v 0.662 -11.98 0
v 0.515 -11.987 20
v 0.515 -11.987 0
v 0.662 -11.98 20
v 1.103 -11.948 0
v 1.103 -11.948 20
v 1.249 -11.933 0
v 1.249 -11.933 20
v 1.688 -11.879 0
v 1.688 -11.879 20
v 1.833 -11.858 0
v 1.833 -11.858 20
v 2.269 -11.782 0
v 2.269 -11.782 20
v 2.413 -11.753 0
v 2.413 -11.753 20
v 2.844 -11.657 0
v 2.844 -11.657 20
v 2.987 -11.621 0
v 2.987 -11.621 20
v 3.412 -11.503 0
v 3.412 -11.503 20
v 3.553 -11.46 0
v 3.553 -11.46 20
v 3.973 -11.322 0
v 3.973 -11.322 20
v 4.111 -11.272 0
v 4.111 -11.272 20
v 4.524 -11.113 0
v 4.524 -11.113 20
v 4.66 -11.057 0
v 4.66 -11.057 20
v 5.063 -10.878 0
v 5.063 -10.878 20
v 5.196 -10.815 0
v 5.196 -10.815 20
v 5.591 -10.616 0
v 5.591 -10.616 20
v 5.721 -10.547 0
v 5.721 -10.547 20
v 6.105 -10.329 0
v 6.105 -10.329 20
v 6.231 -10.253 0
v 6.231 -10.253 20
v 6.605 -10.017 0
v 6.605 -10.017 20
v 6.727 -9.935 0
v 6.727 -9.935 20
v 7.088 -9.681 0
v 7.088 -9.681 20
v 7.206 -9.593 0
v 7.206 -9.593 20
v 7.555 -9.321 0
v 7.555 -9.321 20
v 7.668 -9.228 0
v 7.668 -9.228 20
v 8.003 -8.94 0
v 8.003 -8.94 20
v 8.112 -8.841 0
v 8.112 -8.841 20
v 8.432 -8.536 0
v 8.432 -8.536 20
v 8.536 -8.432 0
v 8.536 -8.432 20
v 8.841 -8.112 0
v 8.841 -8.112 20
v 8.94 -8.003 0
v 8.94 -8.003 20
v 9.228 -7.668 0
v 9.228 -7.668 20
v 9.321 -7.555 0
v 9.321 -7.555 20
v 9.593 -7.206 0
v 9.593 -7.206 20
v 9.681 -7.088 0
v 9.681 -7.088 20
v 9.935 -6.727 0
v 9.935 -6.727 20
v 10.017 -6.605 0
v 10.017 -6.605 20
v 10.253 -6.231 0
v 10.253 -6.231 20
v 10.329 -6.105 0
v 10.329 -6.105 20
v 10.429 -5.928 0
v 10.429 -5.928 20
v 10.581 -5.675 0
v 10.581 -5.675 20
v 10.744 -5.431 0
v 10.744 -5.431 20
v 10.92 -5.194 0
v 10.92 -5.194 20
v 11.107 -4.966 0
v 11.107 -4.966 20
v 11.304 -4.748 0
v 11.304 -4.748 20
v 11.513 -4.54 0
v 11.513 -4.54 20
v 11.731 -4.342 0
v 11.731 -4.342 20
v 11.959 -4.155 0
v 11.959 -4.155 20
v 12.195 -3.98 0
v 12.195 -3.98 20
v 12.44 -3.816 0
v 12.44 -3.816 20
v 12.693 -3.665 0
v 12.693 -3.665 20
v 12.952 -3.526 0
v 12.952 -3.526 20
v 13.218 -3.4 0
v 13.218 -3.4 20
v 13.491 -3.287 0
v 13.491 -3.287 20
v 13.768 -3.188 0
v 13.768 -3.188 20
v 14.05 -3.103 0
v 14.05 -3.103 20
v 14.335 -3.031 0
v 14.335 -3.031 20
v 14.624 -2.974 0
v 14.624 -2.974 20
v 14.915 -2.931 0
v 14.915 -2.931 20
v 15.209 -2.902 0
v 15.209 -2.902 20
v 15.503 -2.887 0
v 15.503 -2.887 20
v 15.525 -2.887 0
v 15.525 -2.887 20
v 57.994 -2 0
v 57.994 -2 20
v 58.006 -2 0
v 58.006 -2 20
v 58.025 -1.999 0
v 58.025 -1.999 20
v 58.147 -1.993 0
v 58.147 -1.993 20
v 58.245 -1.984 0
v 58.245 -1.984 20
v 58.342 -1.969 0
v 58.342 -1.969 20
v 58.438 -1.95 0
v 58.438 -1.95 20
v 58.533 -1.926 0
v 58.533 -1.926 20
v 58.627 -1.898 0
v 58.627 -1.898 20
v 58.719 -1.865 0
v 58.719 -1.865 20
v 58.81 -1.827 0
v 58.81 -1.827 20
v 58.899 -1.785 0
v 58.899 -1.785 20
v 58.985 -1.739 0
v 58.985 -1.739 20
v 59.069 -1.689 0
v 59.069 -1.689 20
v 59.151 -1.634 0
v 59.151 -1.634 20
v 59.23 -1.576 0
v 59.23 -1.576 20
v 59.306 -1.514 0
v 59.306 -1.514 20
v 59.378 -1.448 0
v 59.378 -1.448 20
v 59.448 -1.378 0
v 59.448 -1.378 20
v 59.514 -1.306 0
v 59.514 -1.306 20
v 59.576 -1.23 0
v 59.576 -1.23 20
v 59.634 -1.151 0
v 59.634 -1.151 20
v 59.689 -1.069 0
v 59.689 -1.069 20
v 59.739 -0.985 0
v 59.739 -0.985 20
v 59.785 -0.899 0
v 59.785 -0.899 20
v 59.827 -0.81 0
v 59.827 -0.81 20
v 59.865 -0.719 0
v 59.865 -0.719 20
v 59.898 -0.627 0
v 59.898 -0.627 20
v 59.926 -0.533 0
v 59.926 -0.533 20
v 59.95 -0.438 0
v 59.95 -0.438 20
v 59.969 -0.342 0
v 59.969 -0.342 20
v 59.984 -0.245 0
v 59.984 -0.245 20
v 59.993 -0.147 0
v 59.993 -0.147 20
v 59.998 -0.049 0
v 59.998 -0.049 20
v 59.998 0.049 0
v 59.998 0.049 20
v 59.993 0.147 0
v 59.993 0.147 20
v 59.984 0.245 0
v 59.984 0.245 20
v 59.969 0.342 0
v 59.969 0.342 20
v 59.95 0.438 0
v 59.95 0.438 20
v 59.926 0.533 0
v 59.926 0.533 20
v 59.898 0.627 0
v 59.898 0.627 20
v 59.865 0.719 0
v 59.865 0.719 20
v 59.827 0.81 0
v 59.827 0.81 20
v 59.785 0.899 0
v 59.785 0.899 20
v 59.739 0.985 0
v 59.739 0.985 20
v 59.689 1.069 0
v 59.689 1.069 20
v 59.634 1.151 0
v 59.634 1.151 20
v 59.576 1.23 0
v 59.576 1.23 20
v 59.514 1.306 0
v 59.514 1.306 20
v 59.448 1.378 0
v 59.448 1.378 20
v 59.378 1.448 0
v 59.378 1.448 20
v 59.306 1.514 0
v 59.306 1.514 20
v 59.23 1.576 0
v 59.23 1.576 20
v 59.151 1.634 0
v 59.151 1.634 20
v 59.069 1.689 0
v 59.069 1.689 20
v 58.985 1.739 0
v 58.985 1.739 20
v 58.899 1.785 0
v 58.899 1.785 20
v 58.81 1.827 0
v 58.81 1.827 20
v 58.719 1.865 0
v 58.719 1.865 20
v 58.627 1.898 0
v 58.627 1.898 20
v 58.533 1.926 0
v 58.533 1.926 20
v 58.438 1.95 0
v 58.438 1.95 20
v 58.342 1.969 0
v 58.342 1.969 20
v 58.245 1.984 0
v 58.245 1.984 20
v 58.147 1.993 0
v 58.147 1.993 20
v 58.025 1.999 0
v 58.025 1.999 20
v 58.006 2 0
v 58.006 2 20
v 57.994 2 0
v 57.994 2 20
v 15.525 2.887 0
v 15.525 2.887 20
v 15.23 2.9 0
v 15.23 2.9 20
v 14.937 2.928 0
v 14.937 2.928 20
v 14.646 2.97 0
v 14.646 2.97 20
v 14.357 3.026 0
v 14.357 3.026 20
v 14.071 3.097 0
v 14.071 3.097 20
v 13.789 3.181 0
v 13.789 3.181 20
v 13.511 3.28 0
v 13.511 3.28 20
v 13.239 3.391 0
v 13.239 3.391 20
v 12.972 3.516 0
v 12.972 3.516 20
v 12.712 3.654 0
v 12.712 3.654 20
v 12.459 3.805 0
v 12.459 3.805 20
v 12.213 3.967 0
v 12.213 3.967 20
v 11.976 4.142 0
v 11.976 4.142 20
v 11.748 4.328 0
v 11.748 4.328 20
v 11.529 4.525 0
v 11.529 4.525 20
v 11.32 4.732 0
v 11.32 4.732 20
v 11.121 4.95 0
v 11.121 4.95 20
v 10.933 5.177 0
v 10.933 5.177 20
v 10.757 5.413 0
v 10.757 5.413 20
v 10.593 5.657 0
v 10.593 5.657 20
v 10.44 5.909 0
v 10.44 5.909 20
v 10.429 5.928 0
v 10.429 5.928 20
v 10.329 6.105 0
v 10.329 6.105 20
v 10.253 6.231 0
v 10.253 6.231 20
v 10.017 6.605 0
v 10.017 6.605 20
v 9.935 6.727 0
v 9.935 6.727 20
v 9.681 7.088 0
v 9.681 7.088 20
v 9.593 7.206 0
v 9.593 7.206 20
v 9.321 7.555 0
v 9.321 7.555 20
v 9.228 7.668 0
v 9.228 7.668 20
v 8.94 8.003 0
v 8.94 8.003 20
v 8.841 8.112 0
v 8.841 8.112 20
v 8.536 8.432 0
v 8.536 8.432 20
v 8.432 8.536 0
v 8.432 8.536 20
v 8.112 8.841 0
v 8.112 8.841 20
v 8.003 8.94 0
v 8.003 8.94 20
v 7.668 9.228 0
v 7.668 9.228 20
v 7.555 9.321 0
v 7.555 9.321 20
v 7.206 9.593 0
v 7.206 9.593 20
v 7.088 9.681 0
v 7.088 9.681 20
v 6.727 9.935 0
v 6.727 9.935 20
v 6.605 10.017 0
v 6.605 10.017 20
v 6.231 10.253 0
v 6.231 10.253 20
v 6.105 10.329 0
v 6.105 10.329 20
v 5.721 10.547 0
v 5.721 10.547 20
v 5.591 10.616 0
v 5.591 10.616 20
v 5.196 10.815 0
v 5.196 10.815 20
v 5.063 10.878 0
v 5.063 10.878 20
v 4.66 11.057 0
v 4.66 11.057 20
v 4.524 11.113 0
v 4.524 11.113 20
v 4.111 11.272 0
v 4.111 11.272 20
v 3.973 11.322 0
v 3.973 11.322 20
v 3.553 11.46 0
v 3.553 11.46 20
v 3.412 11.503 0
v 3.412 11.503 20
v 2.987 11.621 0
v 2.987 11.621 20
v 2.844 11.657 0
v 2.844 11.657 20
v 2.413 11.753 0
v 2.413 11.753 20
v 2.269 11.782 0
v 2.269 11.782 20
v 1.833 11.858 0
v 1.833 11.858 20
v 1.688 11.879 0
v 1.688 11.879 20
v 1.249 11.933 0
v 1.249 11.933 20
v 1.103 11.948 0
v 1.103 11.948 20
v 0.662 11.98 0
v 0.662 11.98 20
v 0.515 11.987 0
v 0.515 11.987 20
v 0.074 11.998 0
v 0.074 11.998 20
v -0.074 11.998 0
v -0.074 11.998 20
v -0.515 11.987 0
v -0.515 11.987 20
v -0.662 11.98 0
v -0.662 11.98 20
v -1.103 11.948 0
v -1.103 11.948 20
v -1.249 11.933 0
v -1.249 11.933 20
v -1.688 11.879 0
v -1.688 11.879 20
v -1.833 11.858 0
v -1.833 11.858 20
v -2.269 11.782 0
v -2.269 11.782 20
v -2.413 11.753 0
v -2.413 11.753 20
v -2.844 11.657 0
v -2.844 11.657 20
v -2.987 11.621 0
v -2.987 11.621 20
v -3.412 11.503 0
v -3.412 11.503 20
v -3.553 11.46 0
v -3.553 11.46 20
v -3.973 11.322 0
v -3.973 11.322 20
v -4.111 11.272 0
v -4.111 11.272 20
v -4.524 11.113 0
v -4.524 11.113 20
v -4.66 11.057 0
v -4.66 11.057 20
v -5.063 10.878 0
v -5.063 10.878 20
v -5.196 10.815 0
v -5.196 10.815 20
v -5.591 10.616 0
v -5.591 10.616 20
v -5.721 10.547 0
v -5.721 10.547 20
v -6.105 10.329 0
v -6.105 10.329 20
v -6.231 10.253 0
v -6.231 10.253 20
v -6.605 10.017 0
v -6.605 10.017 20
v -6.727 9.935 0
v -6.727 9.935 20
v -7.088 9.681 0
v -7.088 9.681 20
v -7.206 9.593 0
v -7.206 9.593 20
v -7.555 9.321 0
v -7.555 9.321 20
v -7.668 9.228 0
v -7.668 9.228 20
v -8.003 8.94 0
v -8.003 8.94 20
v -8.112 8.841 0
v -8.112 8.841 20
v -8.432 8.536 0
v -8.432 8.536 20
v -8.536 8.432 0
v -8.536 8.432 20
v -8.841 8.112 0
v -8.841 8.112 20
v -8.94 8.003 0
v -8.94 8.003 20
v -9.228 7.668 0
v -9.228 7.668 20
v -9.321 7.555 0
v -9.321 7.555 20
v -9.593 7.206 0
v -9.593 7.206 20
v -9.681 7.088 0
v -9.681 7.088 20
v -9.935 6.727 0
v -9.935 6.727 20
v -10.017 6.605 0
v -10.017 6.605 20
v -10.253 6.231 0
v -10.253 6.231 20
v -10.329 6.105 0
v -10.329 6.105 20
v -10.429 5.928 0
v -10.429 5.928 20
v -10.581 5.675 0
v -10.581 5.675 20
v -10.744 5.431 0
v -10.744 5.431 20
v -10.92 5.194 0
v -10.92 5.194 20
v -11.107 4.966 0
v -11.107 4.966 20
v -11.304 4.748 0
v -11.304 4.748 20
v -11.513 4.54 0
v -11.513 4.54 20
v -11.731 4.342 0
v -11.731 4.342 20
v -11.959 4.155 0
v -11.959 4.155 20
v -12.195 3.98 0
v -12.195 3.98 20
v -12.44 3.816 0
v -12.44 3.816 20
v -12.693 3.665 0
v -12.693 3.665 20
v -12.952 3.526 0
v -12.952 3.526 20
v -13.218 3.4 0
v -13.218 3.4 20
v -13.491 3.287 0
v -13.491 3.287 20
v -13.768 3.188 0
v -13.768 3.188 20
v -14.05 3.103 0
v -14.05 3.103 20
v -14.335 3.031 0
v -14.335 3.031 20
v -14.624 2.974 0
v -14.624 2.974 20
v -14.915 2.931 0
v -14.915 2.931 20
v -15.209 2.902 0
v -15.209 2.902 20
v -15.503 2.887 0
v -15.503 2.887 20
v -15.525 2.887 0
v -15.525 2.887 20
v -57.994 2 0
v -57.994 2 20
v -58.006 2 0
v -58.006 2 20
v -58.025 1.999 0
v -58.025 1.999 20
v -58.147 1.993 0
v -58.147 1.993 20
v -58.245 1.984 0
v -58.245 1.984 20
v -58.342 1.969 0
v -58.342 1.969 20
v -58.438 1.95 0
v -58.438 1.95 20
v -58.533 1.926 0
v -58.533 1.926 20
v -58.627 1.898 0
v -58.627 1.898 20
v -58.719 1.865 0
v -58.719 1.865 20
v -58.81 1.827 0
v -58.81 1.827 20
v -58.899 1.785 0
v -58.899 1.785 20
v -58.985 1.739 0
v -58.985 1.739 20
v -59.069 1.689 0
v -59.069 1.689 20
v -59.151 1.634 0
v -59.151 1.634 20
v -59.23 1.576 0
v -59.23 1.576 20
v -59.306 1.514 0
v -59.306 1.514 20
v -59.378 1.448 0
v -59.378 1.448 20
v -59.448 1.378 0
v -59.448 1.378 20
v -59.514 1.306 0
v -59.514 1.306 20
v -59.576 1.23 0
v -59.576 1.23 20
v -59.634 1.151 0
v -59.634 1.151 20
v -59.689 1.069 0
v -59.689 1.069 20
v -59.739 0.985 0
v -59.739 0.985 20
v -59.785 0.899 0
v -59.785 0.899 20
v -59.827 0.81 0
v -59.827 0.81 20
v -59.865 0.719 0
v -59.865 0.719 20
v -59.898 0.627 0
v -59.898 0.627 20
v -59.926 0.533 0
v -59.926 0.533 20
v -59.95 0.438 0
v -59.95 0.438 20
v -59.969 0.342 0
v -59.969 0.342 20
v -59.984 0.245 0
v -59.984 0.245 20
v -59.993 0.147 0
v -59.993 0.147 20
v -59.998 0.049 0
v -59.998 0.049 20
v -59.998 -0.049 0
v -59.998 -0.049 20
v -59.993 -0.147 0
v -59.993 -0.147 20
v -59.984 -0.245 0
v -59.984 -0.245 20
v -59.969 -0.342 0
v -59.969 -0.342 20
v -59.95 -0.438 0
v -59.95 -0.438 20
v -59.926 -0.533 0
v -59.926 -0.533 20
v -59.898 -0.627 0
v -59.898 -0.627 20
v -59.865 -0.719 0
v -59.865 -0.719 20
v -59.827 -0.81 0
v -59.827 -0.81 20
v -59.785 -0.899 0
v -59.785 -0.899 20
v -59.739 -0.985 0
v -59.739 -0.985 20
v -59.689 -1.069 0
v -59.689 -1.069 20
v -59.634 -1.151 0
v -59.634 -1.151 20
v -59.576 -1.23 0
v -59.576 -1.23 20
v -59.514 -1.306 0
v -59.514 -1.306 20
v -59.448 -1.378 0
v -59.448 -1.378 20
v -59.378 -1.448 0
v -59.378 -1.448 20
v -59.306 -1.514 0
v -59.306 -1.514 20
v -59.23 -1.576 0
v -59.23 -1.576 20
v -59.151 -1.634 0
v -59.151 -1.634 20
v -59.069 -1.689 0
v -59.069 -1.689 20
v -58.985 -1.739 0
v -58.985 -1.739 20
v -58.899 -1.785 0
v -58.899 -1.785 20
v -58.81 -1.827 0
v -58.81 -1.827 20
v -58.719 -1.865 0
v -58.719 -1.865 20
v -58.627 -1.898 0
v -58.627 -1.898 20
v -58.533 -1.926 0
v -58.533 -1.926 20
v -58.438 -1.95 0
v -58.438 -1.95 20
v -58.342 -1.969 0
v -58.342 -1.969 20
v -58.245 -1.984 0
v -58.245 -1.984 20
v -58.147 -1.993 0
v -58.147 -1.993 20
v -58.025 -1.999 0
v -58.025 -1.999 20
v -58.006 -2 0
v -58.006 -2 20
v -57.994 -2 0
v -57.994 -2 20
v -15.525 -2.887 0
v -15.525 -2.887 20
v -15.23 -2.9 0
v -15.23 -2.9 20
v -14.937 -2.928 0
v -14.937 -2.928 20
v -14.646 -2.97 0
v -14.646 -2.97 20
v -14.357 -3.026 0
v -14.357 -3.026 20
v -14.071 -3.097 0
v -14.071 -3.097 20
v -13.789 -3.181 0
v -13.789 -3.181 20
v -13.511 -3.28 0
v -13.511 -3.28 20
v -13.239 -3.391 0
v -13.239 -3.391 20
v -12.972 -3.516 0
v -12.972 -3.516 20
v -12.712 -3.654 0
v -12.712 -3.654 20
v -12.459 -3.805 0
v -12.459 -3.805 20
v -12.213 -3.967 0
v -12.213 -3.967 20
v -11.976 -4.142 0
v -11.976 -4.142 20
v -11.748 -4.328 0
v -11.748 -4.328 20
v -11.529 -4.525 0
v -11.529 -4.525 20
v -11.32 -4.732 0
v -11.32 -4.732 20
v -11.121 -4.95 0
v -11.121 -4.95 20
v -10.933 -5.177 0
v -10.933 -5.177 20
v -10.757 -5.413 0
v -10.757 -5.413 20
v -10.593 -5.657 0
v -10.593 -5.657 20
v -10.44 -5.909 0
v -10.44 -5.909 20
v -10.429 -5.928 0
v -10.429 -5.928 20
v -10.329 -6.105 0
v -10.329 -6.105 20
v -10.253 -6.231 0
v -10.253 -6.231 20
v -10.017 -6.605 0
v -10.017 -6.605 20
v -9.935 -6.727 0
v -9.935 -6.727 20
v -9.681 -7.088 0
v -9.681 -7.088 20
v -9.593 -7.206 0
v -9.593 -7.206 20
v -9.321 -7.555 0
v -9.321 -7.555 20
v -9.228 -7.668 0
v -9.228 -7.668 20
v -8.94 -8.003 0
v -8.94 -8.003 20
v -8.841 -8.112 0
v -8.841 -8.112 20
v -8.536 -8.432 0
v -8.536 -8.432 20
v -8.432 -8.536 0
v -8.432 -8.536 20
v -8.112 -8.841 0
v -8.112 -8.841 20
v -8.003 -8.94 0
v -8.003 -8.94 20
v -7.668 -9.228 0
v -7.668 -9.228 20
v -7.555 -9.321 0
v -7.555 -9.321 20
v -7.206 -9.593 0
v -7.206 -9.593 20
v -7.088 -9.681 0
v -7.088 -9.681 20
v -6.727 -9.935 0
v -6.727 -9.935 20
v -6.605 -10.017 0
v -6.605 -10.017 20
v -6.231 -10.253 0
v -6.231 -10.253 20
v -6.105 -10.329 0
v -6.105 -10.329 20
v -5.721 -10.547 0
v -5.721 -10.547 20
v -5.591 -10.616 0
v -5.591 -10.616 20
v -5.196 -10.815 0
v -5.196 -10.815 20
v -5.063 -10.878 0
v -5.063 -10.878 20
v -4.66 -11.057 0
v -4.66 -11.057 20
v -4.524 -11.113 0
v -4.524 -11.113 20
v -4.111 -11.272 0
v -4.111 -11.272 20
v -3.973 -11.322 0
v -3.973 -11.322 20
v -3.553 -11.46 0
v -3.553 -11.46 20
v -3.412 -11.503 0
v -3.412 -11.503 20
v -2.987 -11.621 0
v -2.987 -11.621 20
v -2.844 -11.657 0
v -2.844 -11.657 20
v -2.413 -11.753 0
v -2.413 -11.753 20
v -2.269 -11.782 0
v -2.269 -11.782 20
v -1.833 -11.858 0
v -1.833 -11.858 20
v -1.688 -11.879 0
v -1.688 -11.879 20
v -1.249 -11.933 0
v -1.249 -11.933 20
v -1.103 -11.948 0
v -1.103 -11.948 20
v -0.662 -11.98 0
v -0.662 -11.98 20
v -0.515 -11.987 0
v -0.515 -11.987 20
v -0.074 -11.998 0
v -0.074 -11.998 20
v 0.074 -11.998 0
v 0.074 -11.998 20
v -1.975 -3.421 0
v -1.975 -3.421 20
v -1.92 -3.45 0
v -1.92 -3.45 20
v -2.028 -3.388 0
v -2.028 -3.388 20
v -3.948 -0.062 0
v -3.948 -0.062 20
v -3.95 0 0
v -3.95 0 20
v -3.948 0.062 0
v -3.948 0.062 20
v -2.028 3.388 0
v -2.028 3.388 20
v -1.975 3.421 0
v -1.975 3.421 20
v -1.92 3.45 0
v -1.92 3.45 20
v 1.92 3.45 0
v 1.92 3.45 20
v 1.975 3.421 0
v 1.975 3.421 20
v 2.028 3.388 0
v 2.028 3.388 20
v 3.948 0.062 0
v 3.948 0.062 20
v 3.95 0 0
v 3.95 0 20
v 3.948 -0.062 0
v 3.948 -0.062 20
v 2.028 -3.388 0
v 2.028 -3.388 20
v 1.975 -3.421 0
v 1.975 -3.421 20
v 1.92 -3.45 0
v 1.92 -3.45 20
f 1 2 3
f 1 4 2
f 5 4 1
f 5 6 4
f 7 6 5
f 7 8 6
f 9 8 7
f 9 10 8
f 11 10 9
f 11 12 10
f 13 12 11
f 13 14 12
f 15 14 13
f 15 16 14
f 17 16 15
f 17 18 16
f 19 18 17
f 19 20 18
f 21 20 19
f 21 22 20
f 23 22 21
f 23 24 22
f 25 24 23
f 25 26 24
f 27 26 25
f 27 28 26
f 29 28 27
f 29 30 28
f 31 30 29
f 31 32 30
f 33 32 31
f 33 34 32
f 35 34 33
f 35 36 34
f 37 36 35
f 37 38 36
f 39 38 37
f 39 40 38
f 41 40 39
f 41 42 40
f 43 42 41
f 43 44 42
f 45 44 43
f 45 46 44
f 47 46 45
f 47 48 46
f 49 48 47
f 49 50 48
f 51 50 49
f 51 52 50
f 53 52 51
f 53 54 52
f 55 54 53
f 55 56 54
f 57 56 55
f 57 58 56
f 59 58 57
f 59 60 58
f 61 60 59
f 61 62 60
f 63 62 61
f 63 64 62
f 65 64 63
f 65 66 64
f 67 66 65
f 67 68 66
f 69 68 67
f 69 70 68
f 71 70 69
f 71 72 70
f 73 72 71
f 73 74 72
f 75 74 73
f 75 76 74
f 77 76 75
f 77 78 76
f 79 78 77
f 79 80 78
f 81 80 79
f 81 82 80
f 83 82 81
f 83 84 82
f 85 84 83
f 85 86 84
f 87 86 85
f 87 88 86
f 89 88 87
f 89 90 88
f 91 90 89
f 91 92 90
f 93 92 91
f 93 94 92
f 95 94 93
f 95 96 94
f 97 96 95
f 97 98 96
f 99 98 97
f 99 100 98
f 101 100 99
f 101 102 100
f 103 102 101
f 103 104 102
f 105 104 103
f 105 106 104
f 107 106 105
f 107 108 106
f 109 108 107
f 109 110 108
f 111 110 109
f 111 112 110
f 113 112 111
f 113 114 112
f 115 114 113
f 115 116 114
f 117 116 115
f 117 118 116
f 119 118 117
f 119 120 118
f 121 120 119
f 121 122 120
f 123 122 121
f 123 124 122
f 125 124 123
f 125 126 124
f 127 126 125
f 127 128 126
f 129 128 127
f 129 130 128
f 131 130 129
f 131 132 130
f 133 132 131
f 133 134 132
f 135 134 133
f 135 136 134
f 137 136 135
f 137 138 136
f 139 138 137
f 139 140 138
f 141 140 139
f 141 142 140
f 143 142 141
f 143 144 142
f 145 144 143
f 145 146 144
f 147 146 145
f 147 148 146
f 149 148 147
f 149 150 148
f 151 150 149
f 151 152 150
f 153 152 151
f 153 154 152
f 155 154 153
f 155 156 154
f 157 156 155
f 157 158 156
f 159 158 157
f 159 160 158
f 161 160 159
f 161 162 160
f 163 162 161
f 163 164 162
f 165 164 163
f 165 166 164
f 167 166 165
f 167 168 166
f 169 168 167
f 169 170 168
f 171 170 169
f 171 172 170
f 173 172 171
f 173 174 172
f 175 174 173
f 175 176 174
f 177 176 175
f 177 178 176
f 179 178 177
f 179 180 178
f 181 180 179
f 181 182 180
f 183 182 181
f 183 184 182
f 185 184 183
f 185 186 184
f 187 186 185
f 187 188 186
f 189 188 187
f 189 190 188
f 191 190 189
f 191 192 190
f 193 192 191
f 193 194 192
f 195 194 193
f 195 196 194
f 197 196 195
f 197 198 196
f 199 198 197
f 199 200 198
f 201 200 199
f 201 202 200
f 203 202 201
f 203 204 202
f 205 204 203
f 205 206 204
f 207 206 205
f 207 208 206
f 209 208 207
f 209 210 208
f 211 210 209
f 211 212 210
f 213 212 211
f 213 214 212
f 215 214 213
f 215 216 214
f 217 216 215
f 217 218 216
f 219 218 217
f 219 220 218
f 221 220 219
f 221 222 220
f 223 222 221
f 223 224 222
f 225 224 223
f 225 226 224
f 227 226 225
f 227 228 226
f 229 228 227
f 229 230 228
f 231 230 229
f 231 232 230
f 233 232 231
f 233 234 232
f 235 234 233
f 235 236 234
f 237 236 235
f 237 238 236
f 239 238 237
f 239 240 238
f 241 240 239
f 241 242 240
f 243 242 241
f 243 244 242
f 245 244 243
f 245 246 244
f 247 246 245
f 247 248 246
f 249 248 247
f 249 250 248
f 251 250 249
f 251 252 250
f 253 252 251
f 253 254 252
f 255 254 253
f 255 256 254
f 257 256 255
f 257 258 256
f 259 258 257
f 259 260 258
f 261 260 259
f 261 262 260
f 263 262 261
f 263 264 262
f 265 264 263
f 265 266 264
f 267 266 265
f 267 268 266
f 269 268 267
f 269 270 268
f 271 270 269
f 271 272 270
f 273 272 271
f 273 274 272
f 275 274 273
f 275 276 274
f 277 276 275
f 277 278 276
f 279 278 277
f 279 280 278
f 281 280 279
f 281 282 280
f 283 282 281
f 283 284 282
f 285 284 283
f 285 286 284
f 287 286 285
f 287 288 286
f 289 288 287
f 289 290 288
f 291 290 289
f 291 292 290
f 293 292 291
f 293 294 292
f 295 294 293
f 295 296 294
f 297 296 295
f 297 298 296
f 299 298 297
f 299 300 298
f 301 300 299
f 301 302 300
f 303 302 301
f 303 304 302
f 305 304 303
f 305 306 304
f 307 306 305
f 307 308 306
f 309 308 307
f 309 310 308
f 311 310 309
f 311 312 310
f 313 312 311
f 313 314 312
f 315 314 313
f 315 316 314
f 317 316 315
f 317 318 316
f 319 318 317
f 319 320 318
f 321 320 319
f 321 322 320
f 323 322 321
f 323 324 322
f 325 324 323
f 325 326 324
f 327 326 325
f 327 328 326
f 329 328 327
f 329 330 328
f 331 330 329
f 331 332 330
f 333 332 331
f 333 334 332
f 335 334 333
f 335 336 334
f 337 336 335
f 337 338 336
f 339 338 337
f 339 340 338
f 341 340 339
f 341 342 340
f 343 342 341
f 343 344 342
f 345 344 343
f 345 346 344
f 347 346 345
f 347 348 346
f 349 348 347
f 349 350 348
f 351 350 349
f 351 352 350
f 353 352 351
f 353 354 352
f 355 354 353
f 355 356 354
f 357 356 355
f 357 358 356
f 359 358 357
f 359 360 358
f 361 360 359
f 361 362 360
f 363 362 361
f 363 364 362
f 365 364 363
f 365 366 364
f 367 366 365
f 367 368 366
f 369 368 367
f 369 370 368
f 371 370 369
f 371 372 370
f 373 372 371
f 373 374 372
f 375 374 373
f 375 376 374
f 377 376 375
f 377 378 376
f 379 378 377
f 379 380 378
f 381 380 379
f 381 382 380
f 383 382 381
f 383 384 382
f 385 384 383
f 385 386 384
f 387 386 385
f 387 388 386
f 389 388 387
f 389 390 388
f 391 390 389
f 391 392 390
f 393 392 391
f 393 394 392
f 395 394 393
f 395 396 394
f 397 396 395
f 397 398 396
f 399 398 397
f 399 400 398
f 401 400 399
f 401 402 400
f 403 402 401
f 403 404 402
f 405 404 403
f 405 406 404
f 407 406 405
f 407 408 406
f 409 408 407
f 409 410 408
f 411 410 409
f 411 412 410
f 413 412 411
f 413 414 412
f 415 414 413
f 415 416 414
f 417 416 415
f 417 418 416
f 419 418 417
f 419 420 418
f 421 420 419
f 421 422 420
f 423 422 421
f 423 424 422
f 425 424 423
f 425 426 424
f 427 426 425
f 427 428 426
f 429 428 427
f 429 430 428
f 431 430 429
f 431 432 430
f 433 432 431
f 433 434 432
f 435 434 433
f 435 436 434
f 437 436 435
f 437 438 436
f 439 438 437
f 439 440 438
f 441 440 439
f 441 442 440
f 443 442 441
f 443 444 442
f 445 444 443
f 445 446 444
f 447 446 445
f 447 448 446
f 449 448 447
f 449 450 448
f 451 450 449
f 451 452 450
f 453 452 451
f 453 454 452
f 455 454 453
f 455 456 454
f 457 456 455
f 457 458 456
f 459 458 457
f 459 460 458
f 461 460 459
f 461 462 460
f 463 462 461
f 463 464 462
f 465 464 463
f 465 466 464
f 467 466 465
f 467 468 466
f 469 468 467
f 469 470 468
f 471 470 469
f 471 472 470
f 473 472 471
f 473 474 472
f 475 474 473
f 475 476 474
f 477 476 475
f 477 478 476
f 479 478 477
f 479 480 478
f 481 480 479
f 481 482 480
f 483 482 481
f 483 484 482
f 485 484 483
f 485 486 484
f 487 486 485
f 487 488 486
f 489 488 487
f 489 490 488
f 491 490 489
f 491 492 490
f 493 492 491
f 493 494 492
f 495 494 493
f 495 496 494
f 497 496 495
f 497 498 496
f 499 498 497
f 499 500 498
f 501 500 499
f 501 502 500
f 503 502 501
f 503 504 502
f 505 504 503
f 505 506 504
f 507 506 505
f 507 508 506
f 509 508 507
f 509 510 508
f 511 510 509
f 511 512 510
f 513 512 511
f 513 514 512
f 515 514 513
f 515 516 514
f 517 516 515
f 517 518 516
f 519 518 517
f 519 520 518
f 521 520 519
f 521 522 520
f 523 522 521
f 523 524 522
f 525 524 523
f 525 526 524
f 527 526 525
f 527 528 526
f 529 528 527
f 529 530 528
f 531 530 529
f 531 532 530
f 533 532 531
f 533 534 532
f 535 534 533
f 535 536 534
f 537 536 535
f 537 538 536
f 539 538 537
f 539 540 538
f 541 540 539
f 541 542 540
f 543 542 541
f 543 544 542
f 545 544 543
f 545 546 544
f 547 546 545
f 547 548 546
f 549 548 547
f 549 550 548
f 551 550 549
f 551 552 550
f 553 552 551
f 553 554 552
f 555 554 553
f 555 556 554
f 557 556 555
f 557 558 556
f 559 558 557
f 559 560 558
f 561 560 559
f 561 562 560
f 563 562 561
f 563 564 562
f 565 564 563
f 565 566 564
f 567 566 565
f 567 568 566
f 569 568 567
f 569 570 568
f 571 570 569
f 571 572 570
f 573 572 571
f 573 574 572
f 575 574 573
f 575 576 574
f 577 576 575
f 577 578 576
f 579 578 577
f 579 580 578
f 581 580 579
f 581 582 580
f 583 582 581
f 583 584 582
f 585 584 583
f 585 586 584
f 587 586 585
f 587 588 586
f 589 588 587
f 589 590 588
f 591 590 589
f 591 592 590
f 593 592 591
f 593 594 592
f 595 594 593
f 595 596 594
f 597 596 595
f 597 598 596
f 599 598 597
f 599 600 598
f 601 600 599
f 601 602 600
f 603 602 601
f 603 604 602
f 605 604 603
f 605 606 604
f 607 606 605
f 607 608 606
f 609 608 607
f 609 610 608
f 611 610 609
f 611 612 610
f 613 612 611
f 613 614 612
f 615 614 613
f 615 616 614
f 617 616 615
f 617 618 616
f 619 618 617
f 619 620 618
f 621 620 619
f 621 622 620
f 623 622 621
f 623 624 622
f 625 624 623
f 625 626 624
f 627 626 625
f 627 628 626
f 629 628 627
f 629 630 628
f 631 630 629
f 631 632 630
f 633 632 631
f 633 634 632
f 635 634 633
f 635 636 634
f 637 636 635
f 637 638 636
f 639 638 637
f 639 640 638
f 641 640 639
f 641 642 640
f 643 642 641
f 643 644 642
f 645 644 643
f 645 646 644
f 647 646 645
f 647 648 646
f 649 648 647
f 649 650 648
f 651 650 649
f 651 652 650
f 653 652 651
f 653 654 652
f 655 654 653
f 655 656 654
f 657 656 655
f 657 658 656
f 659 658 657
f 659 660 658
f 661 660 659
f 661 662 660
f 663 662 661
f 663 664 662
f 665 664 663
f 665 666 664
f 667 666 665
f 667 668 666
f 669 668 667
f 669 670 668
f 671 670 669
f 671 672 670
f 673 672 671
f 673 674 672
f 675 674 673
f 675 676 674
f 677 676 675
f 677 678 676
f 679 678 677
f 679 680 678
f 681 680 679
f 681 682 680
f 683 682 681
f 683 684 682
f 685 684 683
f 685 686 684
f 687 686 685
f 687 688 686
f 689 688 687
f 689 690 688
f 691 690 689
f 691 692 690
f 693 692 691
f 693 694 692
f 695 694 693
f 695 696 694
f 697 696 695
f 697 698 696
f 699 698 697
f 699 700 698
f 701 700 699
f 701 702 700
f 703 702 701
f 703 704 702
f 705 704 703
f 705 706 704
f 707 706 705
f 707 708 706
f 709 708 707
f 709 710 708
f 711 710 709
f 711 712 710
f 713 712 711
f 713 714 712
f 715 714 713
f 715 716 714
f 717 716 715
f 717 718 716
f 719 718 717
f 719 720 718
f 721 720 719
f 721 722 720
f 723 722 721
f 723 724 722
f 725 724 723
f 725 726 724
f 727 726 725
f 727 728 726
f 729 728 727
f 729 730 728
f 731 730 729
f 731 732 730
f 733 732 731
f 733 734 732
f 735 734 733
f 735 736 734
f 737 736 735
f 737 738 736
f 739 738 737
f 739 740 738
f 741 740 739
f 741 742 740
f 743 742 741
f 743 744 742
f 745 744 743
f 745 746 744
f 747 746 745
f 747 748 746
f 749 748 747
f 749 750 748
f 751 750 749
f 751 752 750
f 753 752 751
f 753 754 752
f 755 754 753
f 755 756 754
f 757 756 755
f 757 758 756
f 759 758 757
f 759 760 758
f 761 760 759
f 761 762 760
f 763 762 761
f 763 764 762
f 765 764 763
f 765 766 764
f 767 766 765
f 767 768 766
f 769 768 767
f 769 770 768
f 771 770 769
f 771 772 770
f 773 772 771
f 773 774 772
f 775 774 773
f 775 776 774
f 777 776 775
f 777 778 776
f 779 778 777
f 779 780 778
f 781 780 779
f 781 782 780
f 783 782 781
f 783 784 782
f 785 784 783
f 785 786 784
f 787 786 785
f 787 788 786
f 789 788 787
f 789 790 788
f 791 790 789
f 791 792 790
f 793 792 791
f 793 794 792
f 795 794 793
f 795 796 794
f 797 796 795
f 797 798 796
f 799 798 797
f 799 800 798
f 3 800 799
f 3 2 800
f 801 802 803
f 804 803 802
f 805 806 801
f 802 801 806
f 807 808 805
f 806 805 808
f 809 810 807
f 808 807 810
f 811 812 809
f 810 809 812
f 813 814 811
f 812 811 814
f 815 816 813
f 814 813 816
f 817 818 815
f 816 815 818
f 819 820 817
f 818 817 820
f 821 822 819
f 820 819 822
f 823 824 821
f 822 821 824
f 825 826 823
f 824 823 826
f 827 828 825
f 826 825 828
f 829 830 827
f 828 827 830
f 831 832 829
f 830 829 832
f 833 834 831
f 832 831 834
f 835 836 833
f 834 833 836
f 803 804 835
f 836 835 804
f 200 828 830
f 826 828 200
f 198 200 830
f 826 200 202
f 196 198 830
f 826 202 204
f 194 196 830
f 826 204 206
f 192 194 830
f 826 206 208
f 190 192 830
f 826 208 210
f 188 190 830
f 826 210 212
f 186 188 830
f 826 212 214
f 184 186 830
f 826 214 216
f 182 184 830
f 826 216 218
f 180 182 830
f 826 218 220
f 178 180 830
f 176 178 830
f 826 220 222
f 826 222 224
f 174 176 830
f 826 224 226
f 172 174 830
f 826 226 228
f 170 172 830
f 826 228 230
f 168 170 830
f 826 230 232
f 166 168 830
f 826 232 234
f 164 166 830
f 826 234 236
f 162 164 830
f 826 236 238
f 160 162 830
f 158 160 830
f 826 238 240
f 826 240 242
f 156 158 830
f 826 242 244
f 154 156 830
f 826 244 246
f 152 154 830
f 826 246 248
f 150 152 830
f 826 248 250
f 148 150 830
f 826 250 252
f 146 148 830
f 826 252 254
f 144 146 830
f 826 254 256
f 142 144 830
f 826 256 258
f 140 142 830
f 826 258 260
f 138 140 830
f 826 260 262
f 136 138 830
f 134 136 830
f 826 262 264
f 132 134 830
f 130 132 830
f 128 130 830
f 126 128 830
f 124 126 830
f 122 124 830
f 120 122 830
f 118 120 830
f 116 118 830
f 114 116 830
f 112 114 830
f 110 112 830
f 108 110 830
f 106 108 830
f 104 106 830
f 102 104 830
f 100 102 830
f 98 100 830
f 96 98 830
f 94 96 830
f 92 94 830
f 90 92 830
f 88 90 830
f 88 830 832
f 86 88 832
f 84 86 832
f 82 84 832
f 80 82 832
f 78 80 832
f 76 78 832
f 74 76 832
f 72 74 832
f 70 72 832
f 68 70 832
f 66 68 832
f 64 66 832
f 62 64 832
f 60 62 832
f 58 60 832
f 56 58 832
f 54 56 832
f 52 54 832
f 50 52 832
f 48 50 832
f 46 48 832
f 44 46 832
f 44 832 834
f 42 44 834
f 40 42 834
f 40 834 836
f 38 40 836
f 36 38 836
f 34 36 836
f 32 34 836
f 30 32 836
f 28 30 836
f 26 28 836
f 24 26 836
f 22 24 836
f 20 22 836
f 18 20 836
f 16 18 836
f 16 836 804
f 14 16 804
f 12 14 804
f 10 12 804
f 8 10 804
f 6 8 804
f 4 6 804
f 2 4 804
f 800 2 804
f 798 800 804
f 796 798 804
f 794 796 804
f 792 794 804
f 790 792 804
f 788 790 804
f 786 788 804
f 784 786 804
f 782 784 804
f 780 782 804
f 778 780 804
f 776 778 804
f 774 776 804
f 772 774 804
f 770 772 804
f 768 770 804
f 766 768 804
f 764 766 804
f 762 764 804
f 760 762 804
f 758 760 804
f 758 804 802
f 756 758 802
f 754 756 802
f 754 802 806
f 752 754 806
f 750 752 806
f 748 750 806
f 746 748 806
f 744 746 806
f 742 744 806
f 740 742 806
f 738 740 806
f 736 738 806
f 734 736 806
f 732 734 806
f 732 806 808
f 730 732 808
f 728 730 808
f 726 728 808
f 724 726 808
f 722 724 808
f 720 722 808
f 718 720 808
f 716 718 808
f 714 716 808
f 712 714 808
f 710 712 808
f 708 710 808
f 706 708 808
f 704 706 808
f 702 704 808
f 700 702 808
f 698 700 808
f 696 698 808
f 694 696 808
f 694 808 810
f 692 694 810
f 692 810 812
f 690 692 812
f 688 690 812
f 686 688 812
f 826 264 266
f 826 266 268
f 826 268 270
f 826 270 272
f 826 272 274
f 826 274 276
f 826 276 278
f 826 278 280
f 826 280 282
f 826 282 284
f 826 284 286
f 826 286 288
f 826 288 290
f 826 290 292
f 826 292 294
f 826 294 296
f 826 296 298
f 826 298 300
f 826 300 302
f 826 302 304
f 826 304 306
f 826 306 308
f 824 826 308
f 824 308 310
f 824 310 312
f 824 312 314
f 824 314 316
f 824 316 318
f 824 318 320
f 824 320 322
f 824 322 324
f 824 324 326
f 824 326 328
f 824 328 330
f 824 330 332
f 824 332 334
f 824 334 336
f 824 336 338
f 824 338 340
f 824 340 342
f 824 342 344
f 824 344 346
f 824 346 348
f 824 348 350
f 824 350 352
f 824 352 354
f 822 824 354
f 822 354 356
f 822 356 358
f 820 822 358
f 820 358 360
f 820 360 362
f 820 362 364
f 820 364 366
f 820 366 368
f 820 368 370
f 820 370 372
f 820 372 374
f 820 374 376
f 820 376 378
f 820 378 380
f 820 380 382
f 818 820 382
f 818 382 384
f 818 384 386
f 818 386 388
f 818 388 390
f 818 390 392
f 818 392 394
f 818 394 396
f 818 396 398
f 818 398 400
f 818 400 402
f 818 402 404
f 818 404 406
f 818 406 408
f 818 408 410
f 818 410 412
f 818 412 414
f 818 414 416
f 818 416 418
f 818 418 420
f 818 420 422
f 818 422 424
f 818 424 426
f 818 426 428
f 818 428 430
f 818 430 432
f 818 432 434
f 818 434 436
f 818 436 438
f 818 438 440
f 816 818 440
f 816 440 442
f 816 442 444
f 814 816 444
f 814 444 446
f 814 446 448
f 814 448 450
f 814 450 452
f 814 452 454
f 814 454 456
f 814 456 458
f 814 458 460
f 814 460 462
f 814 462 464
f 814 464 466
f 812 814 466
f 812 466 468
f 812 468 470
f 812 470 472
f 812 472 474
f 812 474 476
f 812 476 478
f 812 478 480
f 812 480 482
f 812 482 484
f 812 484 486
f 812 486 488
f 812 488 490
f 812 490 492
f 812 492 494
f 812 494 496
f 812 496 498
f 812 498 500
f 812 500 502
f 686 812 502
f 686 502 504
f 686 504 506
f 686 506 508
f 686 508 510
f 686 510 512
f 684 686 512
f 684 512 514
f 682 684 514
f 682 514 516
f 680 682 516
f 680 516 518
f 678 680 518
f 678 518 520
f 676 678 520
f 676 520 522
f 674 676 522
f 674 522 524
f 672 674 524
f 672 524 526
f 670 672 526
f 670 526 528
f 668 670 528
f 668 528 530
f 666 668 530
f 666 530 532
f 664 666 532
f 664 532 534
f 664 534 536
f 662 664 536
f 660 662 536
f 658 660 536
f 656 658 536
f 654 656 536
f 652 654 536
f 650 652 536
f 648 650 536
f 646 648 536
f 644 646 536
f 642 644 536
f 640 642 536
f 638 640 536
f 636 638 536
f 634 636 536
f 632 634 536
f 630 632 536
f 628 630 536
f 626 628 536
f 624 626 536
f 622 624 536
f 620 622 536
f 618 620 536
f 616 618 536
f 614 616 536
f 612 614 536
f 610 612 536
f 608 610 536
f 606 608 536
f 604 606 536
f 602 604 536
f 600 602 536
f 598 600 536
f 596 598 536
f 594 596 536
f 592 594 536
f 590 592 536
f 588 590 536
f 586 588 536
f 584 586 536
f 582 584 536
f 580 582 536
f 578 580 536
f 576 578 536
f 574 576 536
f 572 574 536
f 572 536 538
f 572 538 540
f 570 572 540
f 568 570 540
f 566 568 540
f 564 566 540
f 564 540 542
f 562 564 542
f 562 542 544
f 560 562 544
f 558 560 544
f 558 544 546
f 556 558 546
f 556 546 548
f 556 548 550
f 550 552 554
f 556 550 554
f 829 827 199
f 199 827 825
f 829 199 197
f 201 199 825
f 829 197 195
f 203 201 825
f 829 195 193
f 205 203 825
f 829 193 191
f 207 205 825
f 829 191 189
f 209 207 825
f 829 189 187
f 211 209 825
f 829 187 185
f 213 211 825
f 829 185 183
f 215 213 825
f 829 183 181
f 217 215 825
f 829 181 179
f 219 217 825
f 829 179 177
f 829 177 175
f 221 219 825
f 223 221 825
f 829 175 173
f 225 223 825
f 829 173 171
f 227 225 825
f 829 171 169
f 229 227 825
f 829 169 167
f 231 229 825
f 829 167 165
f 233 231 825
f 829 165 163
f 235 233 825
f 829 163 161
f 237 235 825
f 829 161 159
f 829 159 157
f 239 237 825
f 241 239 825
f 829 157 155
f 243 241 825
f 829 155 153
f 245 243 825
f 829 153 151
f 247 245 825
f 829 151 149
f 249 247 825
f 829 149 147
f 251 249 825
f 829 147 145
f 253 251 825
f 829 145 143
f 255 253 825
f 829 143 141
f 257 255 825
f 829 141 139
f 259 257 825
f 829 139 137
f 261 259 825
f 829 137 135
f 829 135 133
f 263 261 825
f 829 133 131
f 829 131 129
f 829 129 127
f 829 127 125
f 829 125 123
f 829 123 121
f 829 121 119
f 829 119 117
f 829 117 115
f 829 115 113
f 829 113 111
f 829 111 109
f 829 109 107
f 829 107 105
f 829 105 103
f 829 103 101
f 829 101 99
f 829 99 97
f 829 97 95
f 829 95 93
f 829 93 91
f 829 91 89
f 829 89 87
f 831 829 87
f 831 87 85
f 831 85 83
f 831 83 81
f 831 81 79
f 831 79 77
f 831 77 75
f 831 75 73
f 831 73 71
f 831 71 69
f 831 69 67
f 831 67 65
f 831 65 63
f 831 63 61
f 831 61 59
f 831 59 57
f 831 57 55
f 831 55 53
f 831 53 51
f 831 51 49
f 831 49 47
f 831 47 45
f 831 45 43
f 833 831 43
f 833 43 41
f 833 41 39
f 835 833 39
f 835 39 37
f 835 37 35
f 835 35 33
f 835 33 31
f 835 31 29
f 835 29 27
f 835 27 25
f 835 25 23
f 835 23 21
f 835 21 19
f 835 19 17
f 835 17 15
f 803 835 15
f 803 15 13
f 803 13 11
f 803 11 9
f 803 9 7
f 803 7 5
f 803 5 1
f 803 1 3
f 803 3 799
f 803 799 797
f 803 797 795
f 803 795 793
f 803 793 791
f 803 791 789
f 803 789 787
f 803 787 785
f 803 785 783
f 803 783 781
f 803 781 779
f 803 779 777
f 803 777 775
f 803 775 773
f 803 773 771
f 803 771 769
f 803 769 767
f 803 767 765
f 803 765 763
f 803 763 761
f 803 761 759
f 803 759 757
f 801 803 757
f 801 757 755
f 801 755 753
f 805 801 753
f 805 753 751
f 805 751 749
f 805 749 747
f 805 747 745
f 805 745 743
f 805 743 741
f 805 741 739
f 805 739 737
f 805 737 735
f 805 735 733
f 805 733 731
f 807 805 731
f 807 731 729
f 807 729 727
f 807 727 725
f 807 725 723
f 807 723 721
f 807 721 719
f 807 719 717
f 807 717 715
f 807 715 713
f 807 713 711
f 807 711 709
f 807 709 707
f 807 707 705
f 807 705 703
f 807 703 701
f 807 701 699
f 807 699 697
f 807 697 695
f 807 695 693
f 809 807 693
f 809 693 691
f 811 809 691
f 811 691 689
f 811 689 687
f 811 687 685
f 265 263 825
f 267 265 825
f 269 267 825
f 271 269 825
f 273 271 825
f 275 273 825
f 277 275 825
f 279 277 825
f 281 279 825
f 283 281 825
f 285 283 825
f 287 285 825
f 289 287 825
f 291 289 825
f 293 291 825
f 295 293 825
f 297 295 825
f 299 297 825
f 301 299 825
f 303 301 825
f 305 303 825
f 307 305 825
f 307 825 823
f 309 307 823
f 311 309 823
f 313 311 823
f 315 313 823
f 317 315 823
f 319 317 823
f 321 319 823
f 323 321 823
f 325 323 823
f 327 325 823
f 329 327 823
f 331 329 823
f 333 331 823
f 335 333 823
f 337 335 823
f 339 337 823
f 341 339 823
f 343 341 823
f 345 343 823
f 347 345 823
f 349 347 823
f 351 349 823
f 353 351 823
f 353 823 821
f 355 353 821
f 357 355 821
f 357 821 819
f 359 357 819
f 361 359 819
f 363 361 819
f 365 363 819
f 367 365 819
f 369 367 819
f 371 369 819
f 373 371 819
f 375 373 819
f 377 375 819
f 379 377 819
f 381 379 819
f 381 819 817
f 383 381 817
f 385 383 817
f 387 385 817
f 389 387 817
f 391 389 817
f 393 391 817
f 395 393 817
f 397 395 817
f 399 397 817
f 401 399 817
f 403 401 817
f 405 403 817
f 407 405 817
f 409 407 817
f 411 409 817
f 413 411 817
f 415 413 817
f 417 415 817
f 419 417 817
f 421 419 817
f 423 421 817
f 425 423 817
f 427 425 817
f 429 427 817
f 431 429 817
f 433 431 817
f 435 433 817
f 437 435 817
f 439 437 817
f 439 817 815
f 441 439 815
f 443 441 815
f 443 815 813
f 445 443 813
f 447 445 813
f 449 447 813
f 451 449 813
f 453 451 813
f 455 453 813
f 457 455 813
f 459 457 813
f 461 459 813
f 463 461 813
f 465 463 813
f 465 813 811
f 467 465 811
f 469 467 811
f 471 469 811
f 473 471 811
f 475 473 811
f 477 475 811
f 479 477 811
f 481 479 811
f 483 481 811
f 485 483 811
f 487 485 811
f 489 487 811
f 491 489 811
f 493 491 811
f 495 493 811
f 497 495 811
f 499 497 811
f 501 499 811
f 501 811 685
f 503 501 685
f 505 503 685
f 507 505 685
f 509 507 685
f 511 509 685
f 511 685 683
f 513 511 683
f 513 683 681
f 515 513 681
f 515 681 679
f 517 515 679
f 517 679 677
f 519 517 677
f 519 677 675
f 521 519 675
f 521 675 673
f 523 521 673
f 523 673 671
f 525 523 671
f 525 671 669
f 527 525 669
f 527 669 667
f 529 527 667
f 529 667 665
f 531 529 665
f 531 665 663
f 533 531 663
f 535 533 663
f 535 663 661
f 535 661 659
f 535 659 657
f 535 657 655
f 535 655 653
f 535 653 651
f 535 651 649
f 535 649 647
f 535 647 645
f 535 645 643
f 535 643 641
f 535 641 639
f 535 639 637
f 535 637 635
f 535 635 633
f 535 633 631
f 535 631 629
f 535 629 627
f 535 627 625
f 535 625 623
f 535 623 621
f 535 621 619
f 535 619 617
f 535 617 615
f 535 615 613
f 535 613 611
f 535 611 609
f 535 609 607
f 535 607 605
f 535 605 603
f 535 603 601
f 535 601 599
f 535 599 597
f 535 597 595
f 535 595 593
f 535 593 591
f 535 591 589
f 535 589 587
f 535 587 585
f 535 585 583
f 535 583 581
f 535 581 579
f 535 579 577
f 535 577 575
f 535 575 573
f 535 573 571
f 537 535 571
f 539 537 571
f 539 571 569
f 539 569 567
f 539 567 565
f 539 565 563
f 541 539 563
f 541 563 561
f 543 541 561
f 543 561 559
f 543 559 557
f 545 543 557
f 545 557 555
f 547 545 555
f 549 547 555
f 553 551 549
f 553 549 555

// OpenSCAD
// ApexStrykerz - BIOBUZZ intake spoke wheel
// ---------------------------------------------------------------
// A two-spoke paddle wheel that mounts on a goBILDA 8mm REX shaft and
// sweeps POLLEN (2.8 in / 71 mm) and NECTAR (3.6 in / 91 mm) balls into
// the robot. Print in TPU so the spokes flex instead of jamming.
//
// Export the printable part:
//   openscad -o spoke_wheel.stl -D 'part="wheel"' spoke_wheel.scad
// Render the assembly preview (3 wheels on a shaft with both balls):
//   openscad -o preview.png -D 'part="assembly"' --autocenter --viewall spoke_wheel.scad
//
// Every dimension is in millimetres.
// ---------------------------------------------------------------

part = "wheel";          // "wheel" = printable part, "assembly" = preview only, "profile" = 2D outline

// ---- Game pieces (2026-27 BIOBUZZ Competition Manual, section 9.8) ----
pollen_d = 71;           // 2.8 in, yellow, ~25 g
nectar_d = 91;           // 3.6 in, red/blue, ~41 g

// ---- Spoke wheel geometry ----
spokes        = 2;       // number of spokes, evenly spaced
tip_radius    = 60;      // shaft centre to spoke tip (tip-to-tip = 120)
width         = 20;      // length along the shaft
hub_d         = 24;      // hub outside diameter
root_t        = 6;       // spoke thickness where it leaves the hub
tip_t         = 4;       // spoke thickness at the rounded tip
fillet_r      = 6;       // radius of the fillet between spoke and hub

// ---- goBILDA 8mm REX bore: an 8 mm round intersected with a 7 mm hex ----
rex_round_d   = 8;
rex_hex_af    = 7;       // hex across flats
bore_clearance = -0.10;  // TPU: slight interference grips the shaft. PETG/PLA: use +0.15.

// ---- Where the shaft should sit on the robot (for the assembly preview) ----
// Spoke tips should meet the ball a little above its centre so the ball is
// pushed down and in, not popped up. 60% of the average ball diameter:
contact_h    = 0.6 * (pollen_d + nectar_d) / 2;    // = 48.6 mm above the tiles
shaft_h      = contact_h + tip_radius;             // = 108.6 mm shaft centre height
wheel_count  = 3;                                  // wheels shown in the preview
wheel_pitch  = 40;                                 // spacing between wheels in the preview
wheel_angle  = 90;                                 // preview only: 90 puts one spoke straight down

$fn = 128;

// ---------------------------------------------------------------
// 2D building blocks
// ---------------------------------------------------------------
module rex_bore_2d(clearance = 0) {
    intersection() {
        circle(d = rex_round_d + clearance, $fn = 96);
        // circle($fn=6) puts corners on the circle, so diameter = across_flats / cos(30)
        circle(d = (rex_hex_af + clearance) / cos(30), $fn = 6);
    }
}

module spoke_2d() {
    // Tapered blade with a fully rounded tip: hull of a thin bar at the root and a circle at the tip
    hull() {
        translate([hub_d / 2 - 2, -root_t / 2]) square([0.1, root_t]);
        translate([tip_radius - tip_t / 2, 0]) circle(d = tip_t);
    }
}

module wheel_outline_2d() {
    // offset(+r) then offset(-r) fills concave corners with radius r (the root fillets)
    offset(r = -fillet_r) offset(r = fillet_r)
        union() {
            circle(d = hub_d);
            for (i = [0 : spokes - 1])
                rotate(i * 360 / spokes) spoke_2d();
        }
}

module wheel_profile_2d() {
    difference() {
        wheel_outline_2d();
        rex_bore_2d(bore_clearance);
    }
}

// ---------------------------------------------------------------
// 3D part
// ---------------------------------------------------------------
module spoke_wheel() {
    linear_extrude(height = width, convexity = 4) wheel_profile_2d();
}

// ---------------------------------------------------------------
// Assembly preview: shaft horizontal along Y, robot drives toward +X
// ---------------------------------------------------------------
module rex_shaft(length) {
    color("silver") rotate([-90, 0, 0]) linear_extrude(height = length, center = true)
        rex_bore_2d(0);
}

module sweep_ring() {
    // the circle the spoke tips travel on
    color([0.1, 0.1, 0.1, 0.35]) rotate([90, 0, 0])
        rotate_extrude($fn = 180) translate([tip_radius, 0]) circle(d = 1.2, $fn = 12);
}

module assembly() {
    floor_size = 320;
    // tiles
    color([0.55, 0.55, 0.58]) translate([-floor_size / 2, -floor_size / 2, -3]) cube([floor_size, floor_size, 3]);

    shaft_len = (wheel_count + 1) * wheel_pitch;
    translate([0, 0, shaft_h]) {
        rex_shaft(shaft_len);
        for (i = [0 : wheel_count - 1])
            translate([0, (i - (wheel_count - 1) / 2) * wheel_pitch + width / 2, 0])
                rotate([90, 0, 0]) rotate([0, 0, wheel_angle])
                    color([1.0, 0.54, 0.24]) spoke_wheel();
        translate([0, -shaft_len / 2 - 6, 0]) sweep_ring();
    }

    // game pieces resting on the tiles, just touching the tip circle, in front of the intake
    // (a ball of radius r touches the sweep circle when its centre is tip_radius + r from the shaft)
    for (b = [[pollen_d, -wheel_pitch, [1.0, 0.85, 0.1]], [nectar_d, wheel_pitch, [0.85, 0.15, 0.15]]]) {
        r = b[0] / 2;
        dx = sqrt(pow(tip_radius + r, 2) - pow(shaft_h - r, 2));
        color(b[2]) translate([dx, b[1], r]) sphere(d = b[0], $fn = 72);
    }

    // contact-height marker: where the spoke tips bottom out
    color("black") translate([-90, -shaft_len / 2 - 8, contact_h]) cube([220, 1, 0.8]);
}

// ---------------------------------------------------------------
if (part == "wheel")         spoke_wheel();
else if (part == "assembly") assembly();
else if (part == "profile")  wheel_profile_2d();

echo(str("Tip-to-tip diameter: ", 2 * tip_radius, " mm"));
echo(str("Mount the shaft centre ", shaft_h, " mm above the tiles (spoke tips bottom out at ", contact_h, " mm)"));
